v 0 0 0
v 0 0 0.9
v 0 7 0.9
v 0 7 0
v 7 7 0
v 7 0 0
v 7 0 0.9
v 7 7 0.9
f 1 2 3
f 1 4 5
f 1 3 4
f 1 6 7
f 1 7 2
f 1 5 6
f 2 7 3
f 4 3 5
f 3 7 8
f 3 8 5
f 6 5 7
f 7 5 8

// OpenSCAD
/* Warning, this is a very basic generator with a lot of approximation 
input data : [VQFN, 7DW, 7x7x0.9mm, 44, , A, C04-00643A]
generated by com.zoubworld.electronics.cad.model3d.Basic
Date : Sun Feb 15 10:50:49 CET 2026
*/

//body
color("black")
translate([0,0,0])
cube([7.0,7.0,0.9], center=false);
